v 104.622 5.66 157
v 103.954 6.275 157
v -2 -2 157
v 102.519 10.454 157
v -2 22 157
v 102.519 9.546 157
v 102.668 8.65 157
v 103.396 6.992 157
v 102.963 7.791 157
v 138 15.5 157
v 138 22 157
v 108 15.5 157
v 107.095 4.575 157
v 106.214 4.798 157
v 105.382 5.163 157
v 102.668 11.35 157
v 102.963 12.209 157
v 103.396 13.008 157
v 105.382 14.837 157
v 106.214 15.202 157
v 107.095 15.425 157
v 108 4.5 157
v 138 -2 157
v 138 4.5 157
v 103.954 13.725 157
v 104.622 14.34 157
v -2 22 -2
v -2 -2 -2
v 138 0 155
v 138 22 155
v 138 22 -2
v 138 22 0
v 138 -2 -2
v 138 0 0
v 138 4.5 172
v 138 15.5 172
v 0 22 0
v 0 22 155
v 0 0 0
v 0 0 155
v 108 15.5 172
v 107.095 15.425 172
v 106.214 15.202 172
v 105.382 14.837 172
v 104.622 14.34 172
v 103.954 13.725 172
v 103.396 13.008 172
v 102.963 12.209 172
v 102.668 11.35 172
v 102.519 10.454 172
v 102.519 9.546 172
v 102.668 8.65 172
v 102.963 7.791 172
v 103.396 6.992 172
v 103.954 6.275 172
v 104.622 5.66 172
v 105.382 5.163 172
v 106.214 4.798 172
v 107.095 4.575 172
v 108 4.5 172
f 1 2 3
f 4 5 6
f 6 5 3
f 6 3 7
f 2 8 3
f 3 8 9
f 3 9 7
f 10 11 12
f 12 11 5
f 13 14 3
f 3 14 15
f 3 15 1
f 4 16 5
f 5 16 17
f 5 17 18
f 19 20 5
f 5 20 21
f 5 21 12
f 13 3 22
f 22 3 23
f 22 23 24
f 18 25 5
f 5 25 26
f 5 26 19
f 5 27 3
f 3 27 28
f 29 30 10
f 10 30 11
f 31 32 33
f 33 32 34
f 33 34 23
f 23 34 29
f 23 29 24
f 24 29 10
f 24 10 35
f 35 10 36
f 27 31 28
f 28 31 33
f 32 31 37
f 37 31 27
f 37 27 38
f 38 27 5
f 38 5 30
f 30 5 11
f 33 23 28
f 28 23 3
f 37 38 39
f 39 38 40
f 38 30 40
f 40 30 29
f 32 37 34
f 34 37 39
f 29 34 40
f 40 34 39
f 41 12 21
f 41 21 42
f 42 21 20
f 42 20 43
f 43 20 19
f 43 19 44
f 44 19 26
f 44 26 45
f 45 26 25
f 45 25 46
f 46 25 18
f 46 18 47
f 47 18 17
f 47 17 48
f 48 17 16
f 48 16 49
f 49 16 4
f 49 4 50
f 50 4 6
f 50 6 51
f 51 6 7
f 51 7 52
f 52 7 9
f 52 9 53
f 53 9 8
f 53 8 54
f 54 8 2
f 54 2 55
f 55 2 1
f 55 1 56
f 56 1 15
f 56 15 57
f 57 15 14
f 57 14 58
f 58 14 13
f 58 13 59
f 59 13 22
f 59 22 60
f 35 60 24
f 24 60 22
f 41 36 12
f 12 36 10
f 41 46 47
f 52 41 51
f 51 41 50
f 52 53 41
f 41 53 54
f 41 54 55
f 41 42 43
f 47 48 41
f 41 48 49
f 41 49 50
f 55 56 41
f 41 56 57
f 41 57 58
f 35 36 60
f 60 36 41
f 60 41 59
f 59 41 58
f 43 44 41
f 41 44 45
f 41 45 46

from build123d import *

# Parameters (mm, degrees)
SKETCH_1_W      = 138
SKETCH_1_H      = 155
EXTRUDE_1_DEPTH = 22
SHELL_1_T       = 2
EXTRUDE_2_DEPTH = 15


with BuildPart() as part:
    # 草图1 → 凸台-拉伸1 (new body)
    with BuildSketch(Plane(origin=(0, 0, 0), x_dir=(1, 0, 0), z_dir=(0, 1, 0))):
        with Locations((69, -77.5)):
            Rectangle(SKETCH_1_W, SKETCH_1_H)
    extrude(amount=EXTRUDE_1_DEPTH)

    # 抽壳1
    shell_1_openings = [part.faces().sort_by_distance(p)[0] for p in [
        (138, 11, 77.5),
        (69, 22, 77.5),
    ]]
    offset(amount=SHELL_1_T, openings=shell_1_openings, kind=Kind.INTERSECTION)

    # 草图2 → 凸台-拉伸2 (add)
    with BuildSketch(Plane.XY.offset(157)):
        with BuildLine():
            Line((108, 15.5), (138, 15.5))
            Line((138, 15.5), (138, 4.5))
            Line((138, 4.5), (108, 4.5))
            ThreePointArc((108, 4.5), (102.5, 10), (108, 15.5))
        make_face()
    extrude(amount=EXTRUDE_2_DEPTH)


solid = part.part
